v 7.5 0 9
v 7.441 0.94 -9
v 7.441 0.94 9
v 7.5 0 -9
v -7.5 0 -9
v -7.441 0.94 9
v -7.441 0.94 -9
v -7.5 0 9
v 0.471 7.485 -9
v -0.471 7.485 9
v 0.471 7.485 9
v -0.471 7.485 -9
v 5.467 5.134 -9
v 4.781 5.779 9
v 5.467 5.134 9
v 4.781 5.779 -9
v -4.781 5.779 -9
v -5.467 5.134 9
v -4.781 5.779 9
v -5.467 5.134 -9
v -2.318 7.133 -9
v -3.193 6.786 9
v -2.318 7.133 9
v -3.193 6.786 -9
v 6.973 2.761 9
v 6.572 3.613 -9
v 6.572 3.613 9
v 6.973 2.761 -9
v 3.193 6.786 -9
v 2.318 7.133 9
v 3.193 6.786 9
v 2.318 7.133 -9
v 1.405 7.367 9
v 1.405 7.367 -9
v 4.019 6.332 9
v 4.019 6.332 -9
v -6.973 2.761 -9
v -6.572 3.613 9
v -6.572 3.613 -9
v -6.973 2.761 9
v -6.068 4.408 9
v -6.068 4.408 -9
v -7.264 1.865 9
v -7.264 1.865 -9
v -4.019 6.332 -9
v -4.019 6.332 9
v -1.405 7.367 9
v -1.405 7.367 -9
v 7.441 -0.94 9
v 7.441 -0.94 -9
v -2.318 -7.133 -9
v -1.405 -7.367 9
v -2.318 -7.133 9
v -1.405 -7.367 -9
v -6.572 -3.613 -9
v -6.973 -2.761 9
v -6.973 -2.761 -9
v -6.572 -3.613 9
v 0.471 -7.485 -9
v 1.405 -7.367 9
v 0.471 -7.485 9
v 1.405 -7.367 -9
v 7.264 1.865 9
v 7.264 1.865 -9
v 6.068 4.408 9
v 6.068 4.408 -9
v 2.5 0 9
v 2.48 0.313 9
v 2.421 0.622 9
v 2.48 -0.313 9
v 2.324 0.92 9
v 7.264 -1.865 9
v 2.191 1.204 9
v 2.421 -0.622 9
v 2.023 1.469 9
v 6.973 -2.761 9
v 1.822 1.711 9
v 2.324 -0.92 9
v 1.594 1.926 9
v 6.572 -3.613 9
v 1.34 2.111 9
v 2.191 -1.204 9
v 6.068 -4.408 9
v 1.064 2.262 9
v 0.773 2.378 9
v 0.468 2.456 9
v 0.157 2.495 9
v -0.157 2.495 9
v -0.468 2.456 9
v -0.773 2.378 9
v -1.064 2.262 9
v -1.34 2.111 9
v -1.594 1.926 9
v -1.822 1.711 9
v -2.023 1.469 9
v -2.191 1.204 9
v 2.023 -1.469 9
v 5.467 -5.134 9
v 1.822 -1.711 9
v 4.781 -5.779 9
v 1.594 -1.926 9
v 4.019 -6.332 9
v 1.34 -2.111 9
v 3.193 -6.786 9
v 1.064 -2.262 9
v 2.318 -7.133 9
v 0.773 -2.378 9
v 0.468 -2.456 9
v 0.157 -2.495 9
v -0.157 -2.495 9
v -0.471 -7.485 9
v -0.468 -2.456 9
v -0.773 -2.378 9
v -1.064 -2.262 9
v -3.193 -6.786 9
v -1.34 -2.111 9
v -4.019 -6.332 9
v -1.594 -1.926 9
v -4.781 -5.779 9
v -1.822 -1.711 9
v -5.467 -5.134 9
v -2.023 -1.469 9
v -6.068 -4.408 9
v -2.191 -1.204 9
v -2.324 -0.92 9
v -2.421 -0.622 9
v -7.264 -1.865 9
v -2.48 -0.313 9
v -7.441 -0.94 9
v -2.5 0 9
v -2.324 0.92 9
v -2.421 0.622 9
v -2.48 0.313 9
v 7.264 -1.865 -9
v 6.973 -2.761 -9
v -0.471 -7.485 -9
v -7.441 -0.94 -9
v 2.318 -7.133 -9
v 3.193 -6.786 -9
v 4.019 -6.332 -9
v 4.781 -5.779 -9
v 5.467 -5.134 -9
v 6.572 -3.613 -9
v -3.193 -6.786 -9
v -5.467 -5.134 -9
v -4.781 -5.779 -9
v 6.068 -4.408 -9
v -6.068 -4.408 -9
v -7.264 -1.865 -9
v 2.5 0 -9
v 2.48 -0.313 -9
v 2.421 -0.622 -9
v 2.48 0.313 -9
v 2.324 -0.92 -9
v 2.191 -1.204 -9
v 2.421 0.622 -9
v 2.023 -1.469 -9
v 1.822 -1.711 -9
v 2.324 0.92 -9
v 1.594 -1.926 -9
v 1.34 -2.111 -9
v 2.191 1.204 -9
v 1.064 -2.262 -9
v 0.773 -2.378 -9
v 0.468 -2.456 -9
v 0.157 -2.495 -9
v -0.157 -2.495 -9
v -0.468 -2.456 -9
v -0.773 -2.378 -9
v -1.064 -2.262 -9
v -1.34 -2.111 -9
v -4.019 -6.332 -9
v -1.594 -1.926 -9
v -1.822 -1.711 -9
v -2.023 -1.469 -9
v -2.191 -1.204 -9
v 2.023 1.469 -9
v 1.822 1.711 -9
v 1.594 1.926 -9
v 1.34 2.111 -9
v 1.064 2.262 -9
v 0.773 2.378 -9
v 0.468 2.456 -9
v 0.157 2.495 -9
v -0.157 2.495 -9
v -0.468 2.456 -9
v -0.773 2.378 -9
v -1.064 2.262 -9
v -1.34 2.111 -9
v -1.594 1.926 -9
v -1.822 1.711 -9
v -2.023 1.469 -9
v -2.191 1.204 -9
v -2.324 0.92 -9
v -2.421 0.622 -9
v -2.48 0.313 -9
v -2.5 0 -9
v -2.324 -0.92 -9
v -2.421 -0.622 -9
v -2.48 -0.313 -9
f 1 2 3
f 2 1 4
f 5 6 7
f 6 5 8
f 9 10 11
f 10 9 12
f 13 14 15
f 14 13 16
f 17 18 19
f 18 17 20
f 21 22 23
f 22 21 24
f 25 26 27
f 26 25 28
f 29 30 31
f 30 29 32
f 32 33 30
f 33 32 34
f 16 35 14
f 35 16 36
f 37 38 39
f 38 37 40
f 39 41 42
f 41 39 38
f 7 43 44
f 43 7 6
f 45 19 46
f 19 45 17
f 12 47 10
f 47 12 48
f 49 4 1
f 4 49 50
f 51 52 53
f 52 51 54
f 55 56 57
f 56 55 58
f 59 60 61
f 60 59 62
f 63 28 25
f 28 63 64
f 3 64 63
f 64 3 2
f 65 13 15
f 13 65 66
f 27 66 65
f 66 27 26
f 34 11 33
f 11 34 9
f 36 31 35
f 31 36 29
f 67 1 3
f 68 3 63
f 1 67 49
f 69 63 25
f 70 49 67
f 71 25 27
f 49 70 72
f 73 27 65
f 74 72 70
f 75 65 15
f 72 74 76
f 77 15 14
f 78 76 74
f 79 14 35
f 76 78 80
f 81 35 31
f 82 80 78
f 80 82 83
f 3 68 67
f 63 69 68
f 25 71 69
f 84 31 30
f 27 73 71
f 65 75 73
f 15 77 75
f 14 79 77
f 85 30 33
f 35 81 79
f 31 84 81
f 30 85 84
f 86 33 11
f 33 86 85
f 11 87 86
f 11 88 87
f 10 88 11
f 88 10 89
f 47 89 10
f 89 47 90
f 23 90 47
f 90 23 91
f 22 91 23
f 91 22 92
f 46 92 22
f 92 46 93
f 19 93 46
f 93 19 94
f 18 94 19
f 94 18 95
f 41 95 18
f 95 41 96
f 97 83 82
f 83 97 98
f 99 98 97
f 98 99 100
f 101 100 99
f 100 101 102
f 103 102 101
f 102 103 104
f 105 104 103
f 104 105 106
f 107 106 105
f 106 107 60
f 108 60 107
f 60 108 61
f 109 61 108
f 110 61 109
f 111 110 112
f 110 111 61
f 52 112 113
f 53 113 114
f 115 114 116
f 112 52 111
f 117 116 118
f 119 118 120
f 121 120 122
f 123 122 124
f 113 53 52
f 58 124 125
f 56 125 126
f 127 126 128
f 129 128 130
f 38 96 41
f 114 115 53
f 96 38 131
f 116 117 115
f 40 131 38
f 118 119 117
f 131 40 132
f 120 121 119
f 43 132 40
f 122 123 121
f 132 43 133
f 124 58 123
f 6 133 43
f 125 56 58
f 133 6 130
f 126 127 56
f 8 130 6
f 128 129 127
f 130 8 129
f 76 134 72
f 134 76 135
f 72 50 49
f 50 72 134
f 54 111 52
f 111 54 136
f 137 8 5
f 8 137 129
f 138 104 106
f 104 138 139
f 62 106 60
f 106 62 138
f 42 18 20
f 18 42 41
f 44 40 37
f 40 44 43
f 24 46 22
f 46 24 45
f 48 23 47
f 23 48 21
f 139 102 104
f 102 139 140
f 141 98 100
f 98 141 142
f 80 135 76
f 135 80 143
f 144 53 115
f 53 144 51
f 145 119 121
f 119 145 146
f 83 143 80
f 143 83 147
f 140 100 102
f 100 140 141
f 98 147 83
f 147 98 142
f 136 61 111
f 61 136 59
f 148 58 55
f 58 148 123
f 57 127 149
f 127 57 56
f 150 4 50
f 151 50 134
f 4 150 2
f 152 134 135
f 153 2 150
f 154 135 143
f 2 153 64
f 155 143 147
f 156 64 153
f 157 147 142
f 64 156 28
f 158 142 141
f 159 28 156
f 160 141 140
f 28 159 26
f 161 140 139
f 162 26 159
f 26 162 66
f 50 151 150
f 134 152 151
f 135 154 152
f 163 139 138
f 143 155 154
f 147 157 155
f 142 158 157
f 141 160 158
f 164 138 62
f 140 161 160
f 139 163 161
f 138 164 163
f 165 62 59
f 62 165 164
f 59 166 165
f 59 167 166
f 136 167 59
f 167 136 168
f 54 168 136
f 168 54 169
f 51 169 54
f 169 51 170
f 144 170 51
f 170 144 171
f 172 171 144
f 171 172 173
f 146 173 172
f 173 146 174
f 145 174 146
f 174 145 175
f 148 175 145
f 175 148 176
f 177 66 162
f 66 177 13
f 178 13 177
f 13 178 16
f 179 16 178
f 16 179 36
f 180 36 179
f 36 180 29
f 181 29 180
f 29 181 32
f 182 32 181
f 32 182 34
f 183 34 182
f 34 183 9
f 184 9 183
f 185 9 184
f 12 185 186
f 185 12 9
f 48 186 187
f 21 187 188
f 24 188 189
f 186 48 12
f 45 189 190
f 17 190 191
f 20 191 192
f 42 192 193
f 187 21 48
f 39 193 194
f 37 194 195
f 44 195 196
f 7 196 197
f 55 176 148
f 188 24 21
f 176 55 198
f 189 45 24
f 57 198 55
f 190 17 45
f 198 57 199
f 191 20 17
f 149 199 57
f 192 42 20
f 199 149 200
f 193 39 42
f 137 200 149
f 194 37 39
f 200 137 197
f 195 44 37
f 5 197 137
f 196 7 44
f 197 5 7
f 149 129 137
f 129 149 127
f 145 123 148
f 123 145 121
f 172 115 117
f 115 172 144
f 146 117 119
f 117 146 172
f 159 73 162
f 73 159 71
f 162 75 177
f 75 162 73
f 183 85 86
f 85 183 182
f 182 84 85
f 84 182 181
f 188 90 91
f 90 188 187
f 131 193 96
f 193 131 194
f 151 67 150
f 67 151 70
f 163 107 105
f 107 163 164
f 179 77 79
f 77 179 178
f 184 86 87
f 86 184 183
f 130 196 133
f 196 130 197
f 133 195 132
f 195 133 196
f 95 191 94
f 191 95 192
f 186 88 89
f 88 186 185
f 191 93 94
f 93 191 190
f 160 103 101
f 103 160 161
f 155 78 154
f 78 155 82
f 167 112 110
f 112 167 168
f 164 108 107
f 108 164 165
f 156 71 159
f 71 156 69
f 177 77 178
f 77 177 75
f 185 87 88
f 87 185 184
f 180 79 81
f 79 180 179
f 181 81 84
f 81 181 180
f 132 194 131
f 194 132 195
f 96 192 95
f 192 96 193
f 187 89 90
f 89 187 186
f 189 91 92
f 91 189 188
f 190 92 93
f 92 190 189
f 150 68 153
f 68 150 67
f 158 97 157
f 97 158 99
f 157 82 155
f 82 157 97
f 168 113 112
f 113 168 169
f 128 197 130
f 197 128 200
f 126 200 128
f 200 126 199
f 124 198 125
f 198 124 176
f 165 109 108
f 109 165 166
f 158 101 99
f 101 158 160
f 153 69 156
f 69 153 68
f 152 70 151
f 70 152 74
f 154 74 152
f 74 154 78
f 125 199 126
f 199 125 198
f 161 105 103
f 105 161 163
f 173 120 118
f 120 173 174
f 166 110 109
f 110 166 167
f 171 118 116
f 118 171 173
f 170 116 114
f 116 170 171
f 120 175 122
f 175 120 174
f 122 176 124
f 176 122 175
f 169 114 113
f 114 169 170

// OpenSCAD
$fn = 50;


difference() {
	union() {
		translate(v = [0, 0, -9.0000000000]) {
			cylinder(h = 18, r = 7.5000000000);
		}
	}
	union() {
		translate(v = [0, 0, -100.0000000000]) {
			cylinder(h = 200, r = 2.5000000000);
		}
	}
}
